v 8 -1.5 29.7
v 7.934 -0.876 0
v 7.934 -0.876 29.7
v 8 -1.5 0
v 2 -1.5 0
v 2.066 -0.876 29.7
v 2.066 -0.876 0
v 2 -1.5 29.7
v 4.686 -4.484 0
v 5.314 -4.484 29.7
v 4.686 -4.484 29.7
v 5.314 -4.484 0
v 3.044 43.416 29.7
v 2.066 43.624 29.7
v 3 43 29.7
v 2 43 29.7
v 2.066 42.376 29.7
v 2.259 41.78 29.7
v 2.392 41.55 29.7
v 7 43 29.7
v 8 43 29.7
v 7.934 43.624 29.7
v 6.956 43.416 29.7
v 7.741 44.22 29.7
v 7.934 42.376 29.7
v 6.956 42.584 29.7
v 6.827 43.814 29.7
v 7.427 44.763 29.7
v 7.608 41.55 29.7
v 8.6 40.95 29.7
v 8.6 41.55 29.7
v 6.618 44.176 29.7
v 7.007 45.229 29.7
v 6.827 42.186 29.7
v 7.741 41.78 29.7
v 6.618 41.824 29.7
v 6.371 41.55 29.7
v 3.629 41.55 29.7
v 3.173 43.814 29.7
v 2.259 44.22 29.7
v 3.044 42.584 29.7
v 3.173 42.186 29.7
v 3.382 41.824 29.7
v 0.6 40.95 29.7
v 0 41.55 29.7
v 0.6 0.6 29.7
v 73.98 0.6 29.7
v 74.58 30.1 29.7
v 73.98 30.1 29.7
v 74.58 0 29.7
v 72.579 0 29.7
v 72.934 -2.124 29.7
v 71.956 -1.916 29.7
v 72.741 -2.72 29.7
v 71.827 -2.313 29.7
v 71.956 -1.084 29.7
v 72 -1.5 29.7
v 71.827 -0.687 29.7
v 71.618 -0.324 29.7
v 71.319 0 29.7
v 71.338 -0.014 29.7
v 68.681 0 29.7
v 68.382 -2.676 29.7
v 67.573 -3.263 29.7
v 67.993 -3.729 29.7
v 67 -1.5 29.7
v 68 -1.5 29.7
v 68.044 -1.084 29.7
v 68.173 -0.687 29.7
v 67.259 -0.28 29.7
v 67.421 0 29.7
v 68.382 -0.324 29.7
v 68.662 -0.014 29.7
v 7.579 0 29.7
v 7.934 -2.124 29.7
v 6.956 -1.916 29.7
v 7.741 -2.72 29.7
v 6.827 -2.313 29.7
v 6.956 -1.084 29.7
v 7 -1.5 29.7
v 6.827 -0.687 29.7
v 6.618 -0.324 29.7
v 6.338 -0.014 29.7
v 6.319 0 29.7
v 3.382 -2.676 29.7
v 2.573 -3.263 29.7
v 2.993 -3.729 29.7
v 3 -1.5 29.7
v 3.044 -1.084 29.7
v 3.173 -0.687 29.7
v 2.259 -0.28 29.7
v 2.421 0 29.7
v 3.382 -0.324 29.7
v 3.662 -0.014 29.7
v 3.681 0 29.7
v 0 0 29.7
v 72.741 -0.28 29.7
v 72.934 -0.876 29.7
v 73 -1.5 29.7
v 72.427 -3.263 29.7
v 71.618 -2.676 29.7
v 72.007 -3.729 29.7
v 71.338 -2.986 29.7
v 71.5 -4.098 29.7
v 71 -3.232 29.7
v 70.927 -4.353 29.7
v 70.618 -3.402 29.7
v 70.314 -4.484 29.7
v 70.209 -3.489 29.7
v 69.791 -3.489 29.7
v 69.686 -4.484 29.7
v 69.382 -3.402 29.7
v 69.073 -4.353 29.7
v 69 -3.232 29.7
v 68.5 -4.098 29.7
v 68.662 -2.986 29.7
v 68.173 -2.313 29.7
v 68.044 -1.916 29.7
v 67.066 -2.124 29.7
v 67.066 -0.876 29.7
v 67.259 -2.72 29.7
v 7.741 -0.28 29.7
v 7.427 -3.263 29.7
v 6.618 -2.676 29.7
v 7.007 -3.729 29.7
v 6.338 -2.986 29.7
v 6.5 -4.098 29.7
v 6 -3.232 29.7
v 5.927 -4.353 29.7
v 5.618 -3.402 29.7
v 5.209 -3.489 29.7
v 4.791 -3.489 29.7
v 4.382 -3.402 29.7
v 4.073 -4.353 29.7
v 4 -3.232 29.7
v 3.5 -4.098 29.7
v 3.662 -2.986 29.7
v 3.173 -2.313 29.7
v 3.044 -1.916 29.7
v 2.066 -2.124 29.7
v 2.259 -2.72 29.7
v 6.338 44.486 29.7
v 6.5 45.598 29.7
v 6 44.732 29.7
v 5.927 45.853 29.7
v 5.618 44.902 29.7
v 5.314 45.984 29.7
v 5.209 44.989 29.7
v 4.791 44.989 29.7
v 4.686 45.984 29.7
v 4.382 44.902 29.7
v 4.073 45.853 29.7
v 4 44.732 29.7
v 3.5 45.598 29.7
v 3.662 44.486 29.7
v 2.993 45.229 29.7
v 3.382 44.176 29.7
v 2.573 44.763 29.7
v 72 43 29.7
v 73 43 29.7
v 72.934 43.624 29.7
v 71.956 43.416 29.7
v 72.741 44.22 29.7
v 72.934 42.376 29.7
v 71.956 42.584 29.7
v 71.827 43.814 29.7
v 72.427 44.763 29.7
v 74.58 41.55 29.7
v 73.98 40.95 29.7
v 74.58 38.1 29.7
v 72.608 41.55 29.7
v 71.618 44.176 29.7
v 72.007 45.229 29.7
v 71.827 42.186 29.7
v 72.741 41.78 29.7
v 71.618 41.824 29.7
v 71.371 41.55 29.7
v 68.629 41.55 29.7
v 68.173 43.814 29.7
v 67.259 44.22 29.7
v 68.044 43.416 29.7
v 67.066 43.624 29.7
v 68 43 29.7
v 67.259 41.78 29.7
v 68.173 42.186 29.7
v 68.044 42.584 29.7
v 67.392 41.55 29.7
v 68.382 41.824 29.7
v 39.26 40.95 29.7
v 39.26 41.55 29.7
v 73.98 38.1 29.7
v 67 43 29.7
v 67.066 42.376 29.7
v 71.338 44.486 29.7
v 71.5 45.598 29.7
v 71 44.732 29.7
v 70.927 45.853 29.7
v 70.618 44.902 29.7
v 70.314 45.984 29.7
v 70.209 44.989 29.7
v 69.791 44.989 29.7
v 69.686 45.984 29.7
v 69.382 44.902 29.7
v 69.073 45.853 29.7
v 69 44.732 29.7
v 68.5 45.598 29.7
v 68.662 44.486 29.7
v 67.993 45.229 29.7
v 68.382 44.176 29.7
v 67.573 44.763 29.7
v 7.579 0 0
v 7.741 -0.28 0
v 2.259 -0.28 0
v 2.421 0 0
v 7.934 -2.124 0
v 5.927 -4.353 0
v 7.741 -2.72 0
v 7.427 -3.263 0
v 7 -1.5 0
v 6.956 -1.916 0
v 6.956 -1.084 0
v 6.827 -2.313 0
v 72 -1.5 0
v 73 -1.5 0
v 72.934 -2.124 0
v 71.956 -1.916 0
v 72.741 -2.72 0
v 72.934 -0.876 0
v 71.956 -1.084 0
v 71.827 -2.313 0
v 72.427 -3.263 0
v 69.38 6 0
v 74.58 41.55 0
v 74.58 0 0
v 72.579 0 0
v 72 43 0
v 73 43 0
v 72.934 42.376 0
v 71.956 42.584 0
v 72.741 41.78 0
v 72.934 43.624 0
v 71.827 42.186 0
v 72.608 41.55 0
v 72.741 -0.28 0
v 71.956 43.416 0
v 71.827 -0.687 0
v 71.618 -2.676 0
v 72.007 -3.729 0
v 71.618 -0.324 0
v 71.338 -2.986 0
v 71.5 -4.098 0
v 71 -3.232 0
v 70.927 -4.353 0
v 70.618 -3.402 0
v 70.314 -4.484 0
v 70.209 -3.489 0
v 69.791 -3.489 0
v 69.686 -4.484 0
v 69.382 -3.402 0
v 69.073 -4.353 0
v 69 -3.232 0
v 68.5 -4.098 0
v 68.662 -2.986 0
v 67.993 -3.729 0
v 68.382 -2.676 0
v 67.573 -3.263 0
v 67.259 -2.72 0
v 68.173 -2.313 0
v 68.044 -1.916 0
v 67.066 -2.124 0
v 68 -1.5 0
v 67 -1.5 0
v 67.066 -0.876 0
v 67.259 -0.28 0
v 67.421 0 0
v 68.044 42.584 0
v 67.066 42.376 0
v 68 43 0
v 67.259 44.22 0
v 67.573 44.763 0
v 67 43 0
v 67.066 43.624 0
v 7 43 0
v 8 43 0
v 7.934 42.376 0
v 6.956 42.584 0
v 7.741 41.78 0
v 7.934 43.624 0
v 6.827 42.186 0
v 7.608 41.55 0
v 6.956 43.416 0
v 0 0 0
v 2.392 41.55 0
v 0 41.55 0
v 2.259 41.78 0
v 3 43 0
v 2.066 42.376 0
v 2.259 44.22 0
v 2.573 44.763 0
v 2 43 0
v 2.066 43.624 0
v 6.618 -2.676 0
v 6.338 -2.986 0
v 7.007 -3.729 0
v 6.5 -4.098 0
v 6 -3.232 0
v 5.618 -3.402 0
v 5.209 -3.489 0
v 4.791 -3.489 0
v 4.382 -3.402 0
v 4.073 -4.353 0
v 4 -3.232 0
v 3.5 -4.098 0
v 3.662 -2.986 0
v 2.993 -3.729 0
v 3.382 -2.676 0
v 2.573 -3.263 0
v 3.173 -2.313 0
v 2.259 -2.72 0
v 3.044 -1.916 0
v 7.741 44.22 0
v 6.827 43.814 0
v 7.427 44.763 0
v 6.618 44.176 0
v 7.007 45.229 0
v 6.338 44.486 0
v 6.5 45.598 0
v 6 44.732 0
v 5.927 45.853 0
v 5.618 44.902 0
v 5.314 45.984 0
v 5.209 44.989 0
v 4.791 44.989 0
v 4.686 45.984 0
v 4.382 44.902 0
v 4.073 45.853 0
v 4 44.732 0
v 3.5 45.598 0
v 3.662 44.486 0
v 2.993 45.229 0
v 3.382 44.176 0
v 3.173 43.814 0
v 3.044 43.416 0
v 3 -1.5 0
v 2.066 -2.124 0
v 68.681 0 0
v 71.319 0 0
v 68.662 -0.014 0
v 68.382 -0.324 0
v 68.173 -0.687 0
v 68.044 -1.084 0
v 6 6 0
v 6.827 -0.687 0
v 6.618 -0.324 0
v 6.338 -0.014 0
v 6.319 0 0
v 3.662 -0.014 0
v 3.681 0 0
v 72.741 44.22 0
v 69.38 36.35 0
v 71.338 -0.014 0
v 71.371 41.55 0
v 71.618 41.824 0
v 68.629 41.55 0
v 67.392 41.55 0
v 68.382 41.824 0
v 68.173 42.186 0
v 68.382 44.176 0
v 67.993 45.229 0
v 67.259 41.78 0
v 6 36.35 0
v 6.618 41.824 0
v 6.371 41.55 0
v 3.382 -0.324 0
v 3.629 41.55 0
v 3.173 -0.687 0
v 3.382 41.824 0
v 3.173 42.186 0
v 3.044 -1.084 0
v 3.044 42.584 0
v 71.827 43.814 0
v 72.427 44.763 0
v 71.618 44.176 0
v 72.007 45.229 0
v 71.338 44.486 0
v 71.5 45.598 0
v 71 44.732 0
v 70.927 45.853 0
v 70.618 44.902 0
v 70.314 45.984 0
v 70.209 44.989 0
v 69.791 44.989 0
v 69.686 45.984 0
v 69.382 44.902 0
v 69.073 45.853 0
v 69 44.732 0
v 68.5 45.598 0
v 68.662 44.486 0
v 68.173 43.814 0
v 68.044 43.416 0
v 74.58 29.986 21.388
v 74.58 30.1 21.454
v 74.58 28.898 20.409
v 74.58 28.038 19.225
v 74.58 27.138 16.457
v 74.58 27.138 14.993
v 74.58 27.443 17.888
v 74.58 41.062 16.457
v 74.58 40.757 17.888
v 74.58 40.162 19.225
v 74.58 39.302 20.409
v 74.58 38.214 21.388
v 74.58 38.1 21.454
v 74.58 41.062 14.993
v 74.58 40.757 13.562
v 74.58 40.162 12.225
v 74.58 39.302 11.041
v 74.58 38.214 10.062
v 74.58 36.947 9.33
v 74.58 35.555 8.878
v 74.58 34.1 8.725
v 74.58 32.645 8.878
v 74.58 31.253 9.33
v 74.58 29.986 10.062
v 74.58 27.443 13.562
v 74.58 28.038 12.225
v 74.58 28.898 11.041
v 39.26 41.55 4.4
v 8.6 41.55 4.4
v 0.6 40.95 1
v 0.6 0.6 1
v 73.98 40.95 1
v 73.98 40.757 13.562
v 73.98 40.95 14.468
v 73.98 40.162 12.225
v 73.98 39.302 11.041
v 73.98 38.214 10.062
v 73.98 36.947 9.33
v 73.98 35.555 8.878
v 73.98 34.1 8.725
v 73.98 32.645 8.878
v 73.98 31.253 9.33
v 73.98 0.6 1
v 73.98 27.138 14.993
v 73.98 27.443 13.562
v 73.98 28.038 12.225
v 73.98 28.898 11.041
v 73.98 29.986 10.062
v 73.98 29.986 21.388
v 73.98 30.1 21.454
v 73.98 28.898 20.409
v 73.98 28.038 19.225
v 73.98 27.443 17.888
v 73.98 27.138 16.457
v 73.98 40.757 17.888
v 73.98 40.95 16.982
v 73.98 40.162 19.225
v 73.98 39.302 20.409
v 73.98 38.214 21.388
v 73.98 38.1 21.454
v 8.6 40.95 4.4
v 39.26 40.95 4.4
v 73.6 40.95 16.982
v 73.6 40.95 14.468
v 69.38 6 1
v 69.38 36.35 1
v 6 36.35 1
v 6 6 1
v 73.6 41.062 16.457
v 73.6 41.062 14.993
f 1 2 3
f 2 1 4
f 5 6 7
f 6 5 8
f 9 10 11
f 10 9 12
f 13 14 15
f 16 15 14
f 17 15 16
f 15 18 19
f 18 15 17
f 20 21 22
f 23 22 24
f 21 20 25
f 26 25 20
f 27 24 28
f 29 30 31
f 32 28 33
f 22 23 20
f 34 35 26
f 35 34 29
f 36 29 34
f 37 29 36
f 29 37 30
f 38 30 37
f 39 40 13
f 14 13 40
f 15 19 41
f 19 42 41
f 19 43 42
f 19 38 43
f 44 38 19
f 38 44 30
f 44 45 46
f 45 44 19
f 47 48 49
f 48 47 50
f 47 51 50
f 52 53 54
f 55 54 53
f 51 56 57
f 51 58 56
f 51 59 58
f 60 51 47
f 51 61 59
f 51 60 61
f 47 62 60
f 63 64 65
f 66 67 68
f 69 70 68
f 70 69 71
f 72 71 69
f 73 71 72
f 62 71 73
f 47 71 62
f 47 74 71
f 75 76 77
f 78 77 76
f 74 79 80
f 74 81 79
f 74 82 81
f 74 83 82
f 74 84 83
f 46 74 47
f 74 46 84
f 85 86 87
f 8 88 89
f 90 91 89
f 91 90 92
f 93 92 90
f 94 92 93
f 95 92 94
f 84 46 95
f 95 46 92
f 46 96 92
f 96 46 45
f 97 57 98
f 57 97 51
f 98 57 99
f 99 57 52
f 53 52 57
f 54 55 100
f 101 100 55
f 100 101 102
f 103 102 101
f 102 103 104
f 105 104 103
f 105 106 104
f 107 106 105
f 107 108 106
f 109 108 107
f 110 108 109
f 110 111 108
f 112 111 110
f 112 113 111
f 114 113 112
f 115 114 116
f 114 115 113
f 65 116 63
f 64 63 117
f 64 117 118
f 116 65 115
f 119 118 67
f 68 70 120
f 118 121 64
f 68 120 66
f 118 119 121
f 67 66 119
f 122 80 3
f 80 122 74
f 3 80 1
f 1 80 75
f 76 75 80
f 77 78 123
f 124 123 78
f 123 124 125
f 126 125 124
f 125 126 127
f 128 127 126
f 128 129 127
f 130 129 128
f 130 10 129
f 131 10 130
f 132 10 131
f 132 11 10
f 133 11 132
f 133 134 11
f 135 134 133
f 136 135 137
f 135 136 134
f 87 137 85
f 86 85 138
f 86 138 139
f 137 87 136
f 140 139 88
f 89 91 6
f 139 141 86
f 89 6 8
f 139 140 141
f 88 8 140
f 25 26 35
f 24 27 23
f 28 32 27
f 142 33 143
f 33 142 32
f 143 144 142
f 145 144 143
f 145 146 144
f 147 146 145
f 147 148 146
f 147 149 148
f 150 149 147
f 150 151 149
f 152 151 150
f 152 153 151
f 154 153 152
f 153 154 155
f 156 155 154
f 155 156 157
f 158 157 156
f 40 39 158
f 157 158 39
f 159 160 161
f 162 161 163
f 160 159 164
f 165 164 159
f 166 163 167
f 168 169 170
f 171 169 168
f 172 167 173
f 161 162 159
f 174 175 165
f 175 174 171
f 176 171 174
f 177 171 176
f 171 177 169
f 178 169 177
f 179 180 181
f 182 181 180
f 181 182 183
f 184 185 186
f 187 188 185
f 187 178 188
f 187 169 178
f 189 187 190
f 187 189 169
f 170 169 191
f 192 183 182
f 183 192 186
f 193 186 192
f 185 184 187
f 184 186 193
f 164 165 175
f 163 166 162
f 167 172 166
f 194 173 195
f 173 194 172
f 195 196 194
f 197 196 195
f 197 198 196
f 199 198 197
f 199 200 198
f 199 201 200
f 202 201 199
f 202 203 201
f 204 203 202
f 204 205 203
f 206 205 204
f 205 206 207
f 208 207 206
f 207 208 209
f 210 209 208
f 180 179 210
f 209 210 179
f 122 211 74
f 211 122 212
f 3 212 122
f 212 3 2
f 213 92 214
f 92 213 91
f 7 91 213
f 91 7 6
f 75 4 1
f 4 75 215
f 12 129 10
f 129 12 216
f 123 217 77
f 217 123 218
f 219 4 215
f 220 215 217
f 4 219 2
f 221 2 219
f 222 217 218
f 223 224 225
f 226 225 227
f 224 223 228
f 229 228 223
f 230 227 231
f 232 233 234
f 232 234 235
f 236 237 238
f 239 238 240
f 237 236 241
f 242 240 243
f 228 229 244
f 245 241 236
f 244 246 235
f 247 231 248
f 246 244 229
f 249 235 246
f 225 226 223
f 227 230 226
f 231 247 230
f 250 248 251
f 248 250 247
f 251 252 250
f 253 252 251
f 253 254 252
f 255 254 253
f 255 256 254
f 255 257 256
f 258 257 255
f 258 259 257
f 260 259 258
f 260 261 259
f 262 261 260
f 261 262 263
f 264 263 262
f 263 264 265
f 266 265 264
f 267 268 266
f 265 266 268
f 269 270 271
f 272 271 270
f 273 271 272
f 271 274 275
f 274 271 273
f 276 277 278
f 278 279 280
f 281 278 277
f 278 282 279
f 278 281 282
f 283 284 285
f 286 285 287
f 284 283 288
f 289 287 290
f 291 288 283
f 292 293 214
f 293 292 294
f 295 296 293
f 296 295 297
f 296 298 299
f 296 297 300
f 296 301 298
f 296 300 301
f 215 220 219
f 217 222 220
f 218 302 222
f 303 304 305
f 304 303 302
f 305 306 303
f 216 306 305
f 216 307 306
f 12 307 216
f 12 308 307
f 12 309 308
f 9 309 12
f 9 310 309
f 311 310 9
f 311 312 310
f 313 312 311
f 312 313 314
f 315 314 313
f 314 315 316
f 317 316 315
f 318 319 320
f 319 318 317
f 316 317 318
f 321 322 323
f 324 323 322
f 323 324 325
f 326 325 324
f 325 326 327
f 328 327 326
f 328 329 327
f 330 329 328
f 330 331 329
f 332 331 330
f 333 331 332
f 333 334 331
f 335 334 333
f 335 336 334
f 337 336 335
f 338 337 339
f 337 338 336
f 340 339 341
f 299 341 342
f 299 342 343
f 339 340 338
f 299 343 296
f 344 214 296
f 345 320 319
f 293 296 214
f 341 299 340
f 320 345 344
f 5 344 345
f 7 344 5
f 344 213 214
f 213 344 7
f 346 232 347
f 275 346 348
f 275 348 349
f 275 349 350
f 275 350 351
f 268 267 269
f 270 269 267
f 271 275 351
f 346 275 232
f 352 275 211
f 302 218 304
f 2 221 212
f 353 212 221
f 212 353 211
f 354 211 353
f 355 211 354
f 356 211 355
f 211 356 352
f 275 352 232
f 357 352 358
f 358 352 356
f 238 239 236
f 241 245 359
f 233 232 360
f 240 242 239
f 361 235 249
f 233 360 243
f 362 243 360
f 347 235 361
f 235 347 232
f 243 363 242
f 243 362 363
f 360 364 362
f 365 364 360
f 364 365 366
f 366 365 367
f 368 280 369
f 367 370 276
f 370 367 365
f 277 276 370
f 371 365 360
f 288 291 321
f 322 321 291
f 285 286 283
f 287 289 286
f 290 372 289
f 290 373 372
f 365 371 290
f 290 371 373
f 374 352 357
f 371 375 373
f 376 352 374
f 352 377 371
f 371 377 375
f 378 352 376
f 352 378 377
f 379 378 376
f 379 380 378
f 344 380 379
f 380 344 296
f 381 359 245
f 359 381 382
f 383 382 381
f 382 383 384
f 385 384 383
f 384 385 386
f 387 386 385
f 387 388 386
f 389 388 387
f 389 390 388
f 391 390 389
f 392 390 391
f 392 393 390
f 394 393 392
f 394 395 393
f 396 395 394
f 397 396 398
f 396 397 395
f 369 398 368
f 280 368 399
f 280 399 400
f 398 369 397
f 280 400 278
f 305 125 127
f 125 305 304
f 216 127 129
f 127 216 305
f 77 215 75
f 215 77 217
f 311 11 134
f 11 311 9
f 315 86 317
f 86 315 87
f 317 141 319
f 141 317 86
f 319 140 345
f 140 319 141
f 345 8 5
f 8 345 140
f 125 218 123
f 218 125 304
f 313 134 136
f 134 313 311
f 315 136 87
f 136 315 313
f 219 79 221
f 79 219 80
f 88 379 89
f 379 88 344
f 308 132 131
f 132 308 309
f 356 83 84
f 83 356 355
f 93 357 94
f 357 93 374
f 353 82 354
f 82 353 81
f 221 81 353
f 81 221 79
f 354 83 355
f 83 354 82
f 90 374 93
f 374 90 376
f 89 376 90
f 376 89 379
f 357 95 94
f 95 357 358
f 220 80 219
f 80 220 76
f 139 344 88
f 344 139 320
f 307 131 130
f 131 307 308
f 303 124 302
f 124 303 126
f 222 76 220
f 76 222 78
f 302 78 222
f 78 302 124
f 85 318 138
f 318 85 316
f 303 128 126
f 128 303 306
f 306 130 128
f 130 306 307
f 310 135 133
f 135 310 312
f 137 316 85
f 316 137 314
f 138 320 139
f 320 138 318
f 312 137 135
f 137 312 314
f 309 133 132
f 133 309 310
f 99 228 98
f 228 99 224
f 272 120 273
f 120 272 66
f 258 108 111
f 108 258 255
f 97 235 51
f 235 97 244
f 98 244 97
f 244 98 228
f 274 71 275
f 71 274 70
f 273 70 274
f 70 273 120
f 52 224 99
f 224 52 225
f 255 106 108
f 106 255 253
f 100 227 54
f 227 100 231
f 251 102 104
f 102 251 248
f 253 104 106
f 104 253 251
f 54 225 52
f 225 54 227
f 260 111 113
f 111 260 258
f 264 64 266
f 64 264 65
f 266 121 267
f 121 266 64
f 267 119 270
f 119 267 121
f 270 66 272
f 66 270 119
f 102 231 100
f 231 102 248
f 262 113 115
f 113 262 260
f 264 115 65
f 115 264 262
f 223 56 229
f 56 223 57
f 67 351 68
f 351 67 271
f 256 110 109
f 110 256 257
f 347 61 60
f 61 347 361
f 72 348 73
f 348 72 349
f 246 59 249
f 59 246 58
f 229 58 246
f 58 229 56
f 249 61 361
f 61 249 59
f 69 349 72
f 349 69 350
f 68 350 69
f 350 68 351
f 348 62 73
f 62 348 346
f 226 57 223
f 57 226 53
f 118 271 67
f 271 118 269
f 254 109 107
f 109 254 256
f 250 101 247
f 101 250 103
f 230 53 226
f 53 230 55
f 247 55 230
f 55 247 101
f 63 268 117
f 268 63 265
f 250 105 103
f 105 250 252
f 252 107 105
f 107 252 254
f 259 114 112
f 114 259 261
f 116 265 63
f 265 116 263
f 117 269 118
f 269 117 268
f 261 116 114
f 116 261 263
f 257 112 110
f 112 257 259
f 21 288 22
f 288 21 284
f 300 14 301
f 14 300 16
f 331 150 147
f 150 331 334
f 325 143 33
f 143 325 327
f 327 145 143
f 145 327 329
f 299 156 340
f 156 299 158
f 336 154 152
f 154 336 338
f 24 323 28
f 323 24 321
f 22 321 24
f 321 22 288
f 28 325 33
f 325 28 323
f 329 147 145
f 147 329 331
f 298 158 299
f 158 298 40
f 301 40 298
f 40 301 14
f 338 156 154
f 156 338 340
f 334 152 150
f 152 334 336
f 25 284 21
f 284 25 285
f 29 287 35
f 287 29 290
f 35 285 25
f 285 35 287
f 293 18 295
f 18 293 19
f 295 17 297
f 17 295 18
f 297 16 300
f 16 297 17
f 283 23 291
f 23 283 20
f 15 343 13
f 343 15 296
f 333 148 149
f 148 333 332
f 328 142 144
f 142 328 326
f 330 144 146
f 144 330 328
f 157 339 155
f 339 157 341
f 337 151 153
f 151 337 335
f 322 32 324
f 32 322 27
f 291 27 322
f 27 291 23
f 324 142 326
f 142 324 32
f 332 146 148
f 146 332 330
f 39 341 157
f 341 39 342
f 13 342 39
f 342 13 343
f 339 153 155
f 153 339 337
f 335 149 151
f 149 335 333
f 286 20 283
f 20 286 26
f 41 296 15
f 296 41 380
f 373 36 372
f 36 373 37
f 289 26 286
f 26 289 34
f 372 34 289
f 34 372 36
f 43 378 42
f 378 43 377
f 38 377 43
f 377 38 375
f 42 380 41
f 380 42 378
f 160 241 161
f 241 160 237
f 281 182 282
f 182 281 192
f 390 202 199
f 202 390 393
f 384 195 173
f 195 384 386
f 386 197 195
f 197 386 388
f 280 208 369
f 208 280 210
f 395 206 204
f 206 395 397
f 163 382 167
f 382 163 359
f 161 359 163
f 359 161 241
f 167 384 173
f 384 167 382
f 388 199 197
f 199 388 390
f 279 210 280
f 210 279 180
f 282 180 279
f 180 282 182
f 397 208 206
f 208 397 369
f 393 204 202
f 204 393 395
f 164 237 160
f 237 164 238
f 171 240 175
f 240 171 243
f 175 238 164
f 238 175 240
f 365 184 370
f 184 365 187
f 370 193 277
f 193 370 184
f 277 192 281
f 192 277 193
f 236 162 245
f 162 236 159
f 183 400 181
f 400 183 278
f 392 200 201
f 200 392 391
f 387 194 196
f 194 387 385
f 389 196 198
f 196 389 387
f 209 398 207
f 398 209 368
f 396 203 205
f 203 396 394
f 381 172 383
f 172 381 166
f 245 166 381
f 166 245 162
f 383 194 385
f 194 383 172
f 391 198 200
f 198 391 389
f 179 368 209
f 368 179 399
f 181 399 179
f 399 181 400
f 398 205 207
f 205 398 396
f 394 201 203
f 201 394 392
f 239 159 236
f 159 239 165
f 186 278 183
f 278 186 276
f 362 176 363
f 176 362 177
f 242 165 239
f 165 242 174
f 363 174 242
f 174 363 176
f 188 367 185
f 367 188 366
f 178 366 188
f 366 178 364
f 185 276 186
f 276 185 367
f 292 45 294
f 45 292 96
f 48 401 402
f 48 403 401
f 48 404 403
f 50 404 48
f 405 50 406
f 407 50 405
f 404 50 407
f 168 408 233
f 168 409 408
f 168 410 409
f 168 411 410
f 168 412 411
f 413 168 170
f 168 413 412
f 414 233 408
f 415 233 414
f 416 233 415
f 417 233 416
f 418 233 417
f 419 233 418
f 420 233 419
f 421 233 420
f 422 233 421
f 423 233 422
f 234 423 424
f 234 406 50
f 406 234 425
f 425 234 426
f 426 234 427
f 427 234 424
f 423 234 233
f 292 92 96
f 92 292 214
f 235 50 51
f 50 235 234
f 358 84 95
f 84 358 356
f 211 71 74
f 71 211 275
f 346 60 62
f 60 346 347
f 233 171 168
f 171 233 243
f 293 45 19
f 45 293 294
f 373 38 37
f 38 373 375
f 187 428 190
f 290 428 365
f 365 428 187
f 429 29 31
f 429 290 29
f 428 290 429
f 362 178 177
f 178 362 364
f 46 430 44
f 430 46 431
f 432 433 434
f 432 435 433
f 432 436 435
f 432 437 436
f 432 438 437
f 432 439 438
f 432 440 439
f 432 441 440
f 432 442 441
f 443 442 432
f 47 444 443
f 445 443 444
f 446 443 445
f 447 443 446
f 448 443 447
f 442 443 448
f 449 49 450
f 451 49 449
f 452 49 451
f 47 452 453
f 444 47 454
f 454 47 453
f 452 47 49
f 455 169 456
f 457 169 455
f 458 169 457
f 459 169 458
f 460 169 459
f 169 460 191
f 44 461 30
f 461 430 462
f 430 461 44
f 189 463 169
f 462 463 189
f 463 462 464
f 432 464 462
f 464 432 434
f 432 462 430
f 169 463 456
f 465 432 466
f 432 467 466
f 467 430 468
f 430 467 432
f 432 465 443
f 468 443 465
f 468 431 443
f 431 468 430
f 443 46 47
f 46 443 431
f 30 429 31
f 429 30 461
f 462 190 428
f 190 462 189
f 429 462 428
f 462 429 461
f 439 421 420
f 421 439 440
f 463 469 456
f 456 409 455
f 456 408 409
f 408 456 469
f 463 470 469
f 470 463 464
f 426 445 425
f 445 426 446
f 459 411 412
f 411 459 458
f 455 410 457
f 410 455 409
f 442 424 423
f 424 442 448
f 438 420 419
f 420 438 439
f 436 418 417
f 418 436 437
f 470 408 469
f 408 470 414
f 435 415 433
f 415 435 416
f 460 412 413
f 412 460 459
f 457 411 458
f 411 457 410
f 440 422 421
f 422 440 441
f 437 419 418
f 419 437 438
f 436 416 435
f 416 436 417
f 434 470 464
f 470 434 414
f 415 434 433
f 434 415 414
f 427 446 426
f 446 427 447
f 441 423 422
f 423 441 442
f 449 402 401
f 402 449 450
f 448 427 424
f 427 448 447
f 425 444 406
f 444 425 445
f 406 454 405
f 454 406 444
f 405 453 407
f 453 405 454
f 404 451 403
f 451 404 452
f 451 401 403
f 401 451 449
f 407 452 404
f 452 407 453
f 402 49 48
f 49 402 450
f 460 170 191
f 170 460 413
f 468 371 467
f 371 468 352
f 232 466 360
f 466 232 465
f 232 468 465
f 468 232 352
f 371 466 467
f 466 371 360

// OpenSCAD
slop = 0.1;

h = 28.7;

$fs = 0.01;

module standoff(h) {
    difference() {
        cylinder(d=6,h=h);
        cylinder(d=4,h=h+1);
    }
}

module standoff2(h) {
    difference() {
        cylinder(d=6,h=h);
        cylinder(d=4,h=h+1);
    }
}

difference() {
    union() {
        translate([5,-1.5,0]) standoff(h+1);
        translate([70,-1.5,0]) standoff(h+1);
        translate([5,43,0]) standoff(h+1);
        translate([70,43,0]) standoff(h+1);
        cube([73.38+1.2,40.35+1.2,28.7+1]);
    }
    translate([0.6,0.6,1]) {
        cube([73.38,40.35,h+slop]);
        translate([8.00,40.35,3.40]) cube([30.46+slop*2,10,22.49+slop*2+10]);
        translate([73,33.5,29.45/2]) rotate([0,90,0])  cylinder(d=14,h=10);
        translate([73,29.5,29.45/2]) cube([14,8,14]);
    }
    translate([6,6,-1]) cube([73.38-10,40.35-10,10]);
}

/*
difference() {
    union() {
        translate([5,-1.5,0]) standoff(1);
        translate([70,-1.5,0]) standoff(1);
        translate([5,43,0]) standoff(1);
        translate([70,43,0]) standoff(1);
        cube([73.38+1.2,40.55+1.2,1]);
    }
    translate([0.6,0.6,1]) {
        cube([73.38,40.55,h+slop]);
        translate([8.00,40.55,3.40]) cube([30.46+slop*2,10,22.49+slop*2+10]);
        translate([73,33,29.45/2]) rotate([0,90,0])  cylinder(d=13,h=10);
    }
    translate([6,6,-1]) cube([73.38-10,40.55-10,10]);
}
*/
